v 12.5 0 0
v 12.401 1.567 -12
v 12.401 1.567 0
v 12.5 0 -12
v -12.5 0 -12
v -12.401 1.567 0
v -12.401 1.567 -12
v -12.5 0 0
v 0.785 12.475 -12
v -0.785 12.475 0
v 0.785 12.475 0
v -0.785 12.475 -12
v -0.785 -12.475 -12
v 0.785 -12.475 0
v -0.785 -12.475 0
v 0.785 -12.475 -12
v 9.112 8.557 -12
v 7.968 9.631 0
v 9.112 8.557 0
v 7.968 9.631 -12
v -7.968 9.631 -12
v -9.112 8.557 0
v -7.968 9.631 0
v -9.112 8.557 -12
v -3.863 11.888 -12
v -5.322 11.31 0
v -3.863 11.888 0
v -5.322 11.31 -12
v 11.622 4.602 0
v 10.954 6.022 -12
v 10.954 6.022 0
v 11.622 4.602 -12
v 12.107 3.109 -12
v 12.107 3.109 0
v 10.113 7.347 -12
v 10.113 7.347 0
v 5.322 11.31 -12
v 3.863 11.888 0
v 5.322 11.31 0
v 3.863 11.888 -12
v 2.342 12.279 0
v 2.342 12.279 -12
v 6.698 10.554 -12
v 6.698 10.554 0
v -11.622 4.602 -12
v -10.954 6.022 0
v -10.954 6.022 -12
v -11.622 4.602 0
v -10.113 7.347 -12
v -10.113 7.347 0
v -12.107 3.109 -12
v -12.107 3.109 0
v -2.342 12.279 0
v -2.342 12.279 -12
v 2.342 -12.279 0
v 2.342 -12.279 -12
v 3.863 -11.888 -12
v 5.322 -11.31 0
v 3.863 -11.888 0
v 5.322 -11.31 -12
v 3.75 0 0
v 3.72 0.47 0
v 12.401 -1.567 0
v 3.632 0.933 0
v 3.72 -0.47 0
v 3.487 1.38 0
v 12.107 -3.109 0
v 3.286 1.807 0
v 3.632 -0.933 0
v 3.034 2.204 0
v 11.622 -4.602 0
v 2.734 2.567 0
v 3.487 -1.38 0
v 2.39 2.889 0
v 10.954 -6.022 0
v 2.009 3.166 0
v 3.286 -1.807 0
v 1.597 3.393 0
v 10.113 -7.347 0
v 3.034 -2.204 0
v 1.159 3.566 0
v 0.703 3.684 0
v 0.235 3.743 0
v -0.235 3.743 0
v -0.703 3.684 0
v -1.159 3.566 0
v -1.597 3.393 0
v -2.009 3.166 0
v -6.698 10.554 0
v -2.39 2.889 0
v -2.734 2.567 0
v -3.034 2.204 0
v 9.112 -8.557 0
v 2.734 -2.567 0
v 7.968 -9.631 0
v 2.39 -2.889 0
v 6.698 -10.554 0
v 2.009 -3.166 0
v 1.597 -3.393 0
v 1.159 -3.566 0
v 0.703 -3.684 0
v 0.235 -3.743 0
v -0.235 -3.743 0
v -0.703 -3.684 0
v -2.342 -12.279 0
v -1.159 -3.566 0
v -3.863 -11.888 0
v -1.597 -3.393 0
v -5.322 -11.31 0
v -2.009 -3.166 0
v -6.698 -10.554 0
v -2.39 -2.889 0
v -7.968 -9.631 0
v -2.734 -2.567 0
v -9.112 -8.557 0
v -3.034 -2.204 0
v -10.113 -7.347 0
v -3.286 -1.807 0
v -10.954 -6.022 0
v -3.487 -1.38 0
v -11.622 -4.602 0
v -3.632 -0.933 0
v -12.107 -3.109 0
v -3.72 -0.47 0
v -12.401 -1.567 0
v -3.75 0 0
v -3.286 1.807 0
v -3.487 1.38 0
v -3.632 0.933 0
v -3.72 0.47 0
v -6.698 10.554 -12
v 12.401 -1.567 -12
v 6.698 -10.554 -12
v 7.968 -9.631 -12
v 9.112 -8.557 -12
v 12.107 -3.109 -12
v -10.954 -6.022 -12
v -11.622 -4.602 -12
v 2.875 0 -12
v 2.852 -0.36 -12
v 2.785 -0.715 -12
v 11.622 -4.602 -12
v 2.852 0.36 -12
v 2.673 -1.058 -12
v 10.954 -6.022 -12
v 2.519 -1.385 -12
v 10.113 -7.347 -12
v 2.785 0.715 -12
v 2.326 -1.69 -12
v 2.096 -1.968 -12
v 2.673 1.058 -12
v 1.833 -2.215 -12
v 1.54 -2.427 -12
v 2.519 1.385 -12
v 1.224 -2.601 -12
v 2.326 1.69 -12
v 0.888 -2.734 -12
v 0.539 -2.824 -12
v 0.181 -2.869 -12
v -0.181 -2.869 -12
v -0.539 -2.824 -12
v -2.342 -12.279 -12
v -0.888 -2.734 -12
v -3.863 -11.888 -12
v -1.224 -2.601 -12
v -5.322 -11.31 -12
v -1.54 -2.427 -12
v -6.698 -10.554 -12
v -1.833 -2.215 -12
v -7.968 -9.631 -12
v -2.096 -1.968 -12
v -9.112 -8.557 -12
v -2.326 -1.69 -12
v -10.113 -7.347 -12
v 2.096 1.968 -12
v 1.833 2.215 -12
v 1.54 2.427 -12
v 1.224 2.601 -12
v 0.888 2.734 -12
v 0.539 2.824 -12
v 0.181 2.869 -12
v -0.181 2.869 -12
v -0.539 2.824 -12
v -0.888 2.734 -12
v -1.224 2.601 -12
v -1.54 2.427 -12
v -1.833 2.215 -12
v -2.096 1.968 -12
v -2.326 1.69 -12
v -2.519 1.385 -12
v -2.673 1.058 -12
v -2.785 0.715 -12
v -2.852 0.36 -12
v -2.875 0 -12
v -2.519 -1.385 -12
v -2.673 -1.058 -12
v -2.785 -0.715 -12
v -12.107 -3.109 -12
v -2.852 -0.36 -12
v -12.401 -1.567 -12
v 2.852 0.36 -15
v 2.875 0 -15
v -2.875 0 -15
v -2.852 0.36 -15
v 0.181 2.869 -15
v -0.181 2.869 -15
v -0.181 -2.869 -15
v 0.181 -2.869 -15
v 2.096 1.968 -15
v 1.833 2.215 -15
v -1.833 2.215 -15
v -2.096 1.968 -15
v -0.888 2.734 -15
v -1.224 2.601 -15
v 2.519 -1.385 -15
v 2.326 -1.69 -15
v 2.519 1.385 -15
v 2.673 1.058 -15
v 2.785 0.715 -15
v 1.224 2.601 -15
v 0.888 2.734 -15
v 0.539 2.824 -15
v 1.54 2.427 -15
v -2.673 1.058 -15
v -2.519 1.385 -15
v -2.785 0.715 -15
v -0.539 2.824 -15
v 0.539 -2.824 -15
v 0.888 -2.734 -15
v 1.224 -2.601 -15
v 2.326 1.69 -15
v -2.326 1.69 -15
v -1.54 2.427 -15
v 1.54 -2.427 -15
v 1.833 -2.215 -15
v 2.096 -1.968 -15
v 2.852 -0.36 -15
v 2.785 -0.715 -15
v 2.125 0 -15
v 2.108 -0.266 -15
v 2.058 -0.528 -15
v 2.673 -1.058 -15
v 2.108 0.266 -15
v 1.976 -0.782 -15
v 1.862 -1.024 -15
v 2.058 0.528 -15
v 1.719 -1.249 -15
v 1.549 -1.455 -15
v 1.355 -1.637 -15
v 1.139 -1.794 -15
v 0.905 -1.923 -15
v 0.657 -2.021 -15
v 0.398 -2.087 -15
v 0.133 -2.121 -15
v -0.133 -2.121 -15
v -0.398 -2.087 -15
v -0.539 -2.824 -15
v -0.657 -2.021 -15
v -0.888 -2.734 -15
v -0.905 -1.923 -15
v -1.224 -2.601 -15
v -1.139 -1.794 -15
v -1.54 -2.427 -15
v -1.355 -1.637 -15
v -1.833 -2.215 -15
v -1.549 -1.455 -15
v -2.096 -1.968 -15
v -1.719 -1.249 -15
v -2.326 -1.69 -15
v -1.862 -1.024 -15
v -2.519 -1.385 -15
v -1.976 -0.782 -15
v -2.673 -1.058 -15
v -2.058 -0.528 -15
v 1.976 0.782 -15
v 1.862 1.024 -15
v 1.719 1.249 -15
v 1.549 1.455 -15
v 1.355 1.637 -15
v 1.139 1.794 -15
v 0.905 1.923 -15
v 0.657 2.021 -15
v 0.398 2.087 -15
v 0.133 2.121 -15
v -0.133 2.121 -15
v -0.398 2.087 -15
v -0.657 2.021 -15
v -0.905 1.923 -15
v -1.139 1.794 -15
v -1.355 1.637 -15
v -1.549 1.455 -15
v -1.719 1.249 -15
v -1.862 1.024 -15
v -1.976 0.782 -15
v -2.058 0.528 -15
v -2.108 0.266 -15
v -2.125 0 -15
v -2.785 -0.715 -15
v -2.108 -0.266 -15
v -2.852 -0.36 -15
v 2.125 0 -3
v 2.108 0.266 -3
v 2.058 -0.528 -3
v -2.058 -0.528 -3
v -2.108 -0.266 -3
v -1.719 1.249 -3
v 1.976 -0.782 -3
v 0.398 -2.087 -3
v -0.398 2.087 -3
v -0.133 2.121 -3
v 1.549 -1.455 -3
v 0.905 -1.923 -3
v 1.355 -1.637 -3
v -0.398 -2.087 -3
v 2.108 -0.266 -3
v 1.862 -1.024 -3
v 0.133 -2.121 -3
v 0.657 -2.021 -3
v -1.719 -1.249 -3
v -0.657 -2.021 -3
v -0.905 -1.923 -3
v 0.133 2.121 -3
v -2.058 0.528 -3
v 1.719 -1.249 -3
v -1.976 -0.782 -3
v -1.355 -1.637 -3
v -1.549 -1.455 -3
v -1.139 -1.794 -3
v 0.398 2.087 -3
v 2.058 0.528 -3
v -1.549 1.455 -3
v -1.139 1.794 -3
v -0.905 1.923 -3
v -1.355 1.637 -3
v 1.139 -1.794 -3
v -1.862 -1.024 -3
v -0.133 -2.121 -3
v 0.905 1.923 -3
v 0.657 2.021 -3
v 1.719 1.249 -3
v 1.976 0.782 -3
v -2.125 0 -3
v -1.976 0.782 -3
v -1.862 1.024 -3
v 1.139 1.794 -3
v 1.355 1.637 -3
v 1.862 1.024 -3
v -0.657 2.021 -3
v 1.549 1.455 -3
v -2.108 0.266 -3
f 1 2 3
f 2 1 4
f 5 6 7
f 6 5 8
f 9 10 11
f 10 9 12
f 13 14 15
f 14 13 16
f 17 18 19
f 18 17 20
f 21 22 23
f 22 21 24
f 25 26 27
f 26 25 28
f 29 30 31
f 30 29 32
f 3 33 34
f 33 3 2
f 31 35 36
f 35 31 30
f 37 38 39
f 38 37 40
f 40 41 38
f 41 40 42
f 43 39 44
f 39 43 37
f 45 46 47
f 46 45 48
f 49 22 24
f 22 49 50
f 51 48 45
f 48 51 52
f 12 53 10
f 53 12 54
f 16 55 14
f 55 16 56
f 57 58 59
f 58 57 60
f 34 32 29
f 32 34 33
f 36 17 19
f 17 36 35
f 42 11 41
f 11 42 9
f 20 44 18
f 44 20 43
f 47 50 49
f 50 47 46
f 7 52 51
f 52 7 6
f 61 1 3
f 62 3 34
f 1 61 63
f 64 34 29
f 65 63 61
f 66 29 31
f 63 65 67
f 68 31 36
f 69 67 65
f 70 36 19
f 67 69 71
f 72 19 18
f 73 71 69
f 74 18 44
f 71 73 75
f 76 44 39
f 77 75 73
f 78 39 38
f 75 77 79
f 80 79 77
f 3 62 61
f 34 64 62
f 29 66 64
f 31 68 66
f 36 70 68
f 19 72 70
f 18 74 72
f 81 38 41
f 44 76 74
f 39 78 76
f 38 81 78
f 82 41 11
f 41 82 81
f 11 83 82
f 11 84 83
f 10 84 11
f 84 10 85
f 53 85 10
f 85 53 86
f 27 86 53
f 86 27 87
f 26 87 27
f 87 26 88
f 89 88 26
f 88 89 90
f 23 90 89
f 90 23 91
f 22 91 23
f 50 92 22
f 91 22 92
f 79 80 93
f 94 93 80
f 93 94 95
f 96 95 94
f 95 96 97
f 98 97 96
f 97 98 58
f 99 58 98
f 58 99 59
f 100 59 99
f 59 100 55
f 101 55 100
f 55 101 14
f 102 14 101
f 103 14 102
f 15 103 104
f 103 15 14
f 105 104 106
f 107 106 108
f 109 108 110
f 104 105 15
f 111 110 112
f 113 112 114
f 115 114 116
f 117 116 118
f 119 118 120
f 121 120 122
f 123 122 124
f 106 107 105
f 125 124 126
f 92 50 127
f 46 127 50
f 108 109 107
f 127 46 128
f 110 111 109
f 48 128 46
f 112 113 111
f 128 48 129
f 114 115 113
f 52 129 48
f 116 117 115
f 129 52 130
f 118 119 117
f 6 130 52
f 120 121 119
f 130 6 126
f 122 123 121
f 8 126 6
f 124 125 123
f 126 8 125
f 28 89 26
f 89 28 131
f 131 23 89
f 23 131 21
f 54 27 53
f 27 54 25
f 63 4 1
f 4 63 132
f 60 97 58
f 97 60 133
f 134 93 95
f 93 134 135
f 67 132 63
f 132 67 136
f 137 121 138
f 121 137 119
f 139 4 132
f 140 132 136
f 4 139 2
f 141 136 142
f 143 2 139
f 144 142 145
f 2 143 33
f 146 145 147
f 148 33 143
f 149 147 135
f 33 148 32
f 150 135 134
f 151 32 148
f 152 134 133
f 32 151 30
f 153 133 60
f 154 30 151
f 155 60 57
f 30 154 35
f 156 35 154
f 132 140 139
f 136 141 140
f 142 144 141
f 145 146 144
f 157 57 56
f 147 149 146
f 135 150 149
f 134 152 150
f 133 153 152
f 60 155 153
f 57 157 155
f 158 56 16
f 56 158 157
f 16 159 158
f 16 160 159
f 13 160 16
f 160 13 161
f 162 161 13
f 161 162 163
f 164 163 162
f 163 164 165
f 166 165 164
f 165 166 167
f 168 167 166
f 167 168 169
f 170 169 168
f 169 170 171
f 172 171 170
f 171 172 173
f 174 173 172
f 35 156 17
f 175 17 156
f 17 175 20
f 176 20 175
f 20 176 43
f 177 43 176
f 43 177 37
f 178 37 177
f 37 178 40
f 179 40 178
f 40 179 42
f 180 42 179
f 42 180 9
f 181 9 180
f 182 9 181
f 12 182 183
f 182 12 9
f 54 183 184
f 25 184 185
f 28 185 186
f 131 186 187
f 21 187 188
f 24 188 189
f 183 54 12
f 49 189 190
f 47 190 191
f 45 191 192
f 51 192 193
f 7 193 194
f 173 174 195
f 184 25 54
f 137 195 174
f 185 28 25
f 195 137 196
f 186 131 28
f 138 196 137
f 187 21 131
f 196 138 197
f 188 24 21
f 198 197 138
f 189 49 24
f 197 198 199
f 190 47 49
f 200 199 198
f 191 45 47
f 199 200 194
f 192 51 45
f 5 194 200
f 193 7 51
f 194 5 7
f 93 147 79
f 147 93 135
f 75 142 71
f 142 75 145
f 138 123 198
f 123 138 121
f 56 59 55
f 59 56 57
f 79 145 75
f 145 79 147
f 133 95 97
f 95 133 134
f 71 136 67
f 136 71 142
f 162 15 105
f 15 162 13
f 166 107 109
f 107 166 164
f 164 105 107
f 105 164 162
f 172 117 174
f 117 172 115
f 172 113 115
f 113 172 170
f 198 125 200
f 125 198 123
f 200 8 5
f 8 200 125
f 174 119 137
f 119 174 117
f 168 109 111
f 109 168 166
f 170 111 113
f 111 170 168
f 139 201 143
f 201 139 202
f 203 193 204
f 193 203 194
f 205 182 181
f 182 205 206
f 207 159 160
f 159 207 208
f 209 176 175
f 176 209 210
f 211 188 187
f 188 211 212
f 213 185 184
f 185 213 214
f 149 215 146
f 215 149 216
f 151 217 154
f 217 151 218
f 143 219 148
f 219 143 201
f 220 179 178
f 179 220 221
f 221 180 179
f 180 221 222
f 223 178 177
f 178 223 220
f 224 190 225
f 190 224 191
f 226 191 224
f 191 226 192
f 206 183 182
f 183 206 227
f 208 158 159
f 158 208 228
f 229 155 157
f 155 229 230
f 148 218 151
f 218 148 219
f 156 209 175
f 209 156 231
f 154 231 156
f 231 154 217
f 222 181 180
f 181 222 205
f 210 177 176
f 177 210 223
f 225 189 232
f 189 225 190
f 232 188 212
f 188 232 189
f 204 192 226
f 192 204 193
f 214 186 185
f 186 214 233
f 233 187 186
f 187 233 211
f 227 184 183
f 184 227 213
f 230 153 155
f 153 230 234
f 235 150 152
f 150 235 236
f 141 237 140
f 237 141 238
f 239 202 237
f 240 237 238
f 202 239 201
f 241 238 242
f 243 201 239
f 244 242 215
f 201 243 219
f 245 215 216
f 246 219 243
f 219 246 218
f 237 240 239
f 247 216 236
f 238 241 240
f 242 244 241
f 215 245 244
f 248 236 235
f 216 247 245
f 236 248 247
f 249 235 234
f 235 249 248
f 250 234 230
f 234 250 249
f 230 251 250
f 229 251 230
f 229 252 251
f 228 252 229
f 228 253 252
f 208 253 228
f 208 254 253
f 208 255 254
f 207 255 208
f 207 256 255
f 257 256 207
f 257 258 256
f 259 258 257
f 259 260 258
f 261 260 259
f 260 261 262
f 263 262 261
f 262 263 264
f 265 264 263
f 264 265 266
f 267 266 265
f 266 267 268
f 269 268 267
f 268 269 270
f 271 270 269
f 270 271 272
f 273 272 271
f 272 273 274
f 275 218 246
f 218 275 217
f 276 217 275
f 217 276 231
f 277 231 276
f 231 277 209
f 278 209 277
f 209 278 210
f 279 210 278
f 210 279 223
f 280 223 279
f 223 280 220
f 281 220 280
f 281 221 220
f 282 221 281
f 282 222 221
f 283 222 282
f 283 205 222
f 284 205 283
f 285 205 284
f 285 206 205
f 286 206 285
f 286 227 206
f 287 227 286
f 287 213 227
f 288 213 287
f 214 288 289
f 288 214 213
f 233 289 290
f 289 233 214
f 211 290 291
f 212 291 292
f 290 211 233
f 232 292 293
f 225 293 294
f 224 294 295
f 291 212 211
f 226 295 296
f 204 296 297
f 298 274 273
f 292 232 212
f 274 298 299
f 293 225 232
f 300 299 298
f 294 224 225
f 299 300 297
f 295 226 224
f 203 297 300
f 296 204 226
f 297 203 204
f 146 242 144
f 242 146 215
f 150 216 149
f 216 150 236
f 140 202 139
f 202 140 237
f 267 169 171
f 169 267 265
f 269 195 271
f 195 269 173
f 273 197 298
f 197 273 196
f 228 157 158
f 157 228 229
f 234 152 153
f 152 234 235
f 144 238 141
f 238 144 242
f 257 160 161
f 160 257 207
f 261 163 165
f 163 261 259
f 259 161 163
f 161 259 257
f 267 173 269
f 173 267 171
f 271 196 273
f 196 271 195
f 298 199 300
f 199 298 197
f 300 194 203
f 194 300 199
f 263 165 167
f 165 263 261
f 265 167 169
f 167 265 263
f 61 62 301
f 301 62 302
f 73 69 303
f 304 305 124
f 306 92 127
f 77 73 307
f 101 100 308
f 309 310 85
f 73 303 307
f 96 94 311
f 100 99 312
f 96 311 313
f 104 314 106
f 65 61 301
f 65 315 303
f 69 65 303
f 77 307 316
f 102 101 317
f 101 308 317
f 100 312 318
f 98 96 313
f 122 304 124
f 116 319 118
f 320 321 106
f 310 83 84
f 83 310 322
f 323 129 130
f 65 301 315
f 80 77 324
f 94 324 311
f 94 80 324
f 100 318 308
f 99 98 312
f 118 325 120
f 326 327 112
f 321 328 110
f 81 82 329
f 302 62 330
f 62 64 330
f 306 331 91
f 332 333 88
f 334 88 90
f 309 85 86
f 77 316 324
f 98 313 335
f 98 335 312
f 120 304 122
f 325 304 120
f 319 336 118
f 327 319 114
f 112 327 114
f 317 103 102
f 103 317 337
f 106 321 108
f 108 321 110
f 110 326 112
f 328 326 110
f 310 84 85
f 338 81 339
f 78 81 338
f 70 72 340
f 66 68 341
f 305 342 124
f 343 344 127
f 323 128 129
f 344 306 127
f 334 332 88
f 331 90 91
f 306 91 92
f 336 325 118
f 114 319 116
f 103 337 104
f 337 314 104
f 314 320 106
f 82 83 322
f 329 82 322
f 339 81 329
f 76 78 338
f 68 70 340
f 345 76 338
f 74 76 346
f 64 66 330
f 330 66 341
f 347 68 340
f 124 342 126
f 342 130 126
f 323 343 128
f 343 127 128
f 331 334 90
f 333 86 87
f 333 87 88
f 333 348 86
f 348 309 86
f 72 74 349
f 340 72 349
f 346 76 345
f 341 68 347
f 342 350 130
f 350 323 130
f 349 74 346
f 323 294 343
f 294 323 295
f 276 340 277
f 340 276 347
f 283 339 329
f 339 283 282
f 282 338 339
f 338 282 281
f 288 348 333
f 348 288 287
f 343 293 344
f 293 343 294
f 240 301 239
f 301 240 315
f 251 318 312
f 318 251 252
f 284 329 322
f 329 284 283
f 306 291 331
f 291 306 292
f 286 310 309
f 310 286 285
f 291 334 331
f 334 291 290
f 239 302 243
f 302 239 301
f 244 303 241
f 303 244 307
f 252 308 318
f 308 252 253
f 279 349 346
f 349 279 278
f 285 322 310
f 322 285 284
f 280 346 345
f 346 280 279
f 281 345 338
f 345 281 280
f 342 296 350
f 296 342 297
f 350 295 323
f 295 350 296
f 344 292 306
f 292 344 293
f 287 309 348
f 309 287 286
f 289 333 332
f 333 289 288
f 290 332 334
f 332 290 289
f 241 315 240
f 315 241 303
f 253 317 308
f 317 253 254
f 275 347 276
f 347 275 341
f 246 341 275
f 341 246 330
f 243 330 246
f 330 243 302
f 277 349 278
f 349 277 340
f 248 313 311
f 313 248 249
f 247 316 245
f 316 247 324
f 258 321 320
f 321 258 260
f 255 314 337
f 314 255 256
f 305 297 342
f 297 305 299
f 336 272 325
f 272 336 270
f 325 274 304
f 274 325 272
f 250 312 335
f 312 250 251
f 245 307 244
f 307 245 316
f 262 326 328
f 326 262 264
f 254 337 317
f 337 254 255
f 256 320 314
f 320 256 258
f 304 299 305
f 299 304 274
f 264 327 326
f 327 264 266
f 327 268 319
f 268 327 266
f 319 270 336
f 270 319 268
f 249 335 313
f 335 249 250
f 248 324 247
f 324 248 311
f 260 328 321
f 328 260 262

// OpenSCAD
$fn = 50;

difference() {
	union() {
		translate(v = [0, 0, -12.0]) {
			cylinder(h = 12, r = 12.5);
		}
		#translate(v = [0, 0, -15.0]) {
			cylinder(h = 15, r = 2.875);
		}
	}
	union() {
		translate(v = [0, 0, 0]) {
			rotate(a = [0, 0, 0]) {
				difference() {
					union() {
						translate(v = [0, 0, -15.0]) {
							cylinder(h = 15, r = 2.0);
						}
						translate(v = [0, 0, -3]) {
							cylinder(h = 3, r1 = 2.125, r2 = 3.75);
						}
						translate(v = [0, 0, -15.0]) {
							cylinder(h = 15, r = 2.125);
						}
						translate(v = [0, 0, -15.0]) {
							cylinder(h = 15, r = 2.0);
						}
					}
					union();
				}
			}
		}
	}
}
